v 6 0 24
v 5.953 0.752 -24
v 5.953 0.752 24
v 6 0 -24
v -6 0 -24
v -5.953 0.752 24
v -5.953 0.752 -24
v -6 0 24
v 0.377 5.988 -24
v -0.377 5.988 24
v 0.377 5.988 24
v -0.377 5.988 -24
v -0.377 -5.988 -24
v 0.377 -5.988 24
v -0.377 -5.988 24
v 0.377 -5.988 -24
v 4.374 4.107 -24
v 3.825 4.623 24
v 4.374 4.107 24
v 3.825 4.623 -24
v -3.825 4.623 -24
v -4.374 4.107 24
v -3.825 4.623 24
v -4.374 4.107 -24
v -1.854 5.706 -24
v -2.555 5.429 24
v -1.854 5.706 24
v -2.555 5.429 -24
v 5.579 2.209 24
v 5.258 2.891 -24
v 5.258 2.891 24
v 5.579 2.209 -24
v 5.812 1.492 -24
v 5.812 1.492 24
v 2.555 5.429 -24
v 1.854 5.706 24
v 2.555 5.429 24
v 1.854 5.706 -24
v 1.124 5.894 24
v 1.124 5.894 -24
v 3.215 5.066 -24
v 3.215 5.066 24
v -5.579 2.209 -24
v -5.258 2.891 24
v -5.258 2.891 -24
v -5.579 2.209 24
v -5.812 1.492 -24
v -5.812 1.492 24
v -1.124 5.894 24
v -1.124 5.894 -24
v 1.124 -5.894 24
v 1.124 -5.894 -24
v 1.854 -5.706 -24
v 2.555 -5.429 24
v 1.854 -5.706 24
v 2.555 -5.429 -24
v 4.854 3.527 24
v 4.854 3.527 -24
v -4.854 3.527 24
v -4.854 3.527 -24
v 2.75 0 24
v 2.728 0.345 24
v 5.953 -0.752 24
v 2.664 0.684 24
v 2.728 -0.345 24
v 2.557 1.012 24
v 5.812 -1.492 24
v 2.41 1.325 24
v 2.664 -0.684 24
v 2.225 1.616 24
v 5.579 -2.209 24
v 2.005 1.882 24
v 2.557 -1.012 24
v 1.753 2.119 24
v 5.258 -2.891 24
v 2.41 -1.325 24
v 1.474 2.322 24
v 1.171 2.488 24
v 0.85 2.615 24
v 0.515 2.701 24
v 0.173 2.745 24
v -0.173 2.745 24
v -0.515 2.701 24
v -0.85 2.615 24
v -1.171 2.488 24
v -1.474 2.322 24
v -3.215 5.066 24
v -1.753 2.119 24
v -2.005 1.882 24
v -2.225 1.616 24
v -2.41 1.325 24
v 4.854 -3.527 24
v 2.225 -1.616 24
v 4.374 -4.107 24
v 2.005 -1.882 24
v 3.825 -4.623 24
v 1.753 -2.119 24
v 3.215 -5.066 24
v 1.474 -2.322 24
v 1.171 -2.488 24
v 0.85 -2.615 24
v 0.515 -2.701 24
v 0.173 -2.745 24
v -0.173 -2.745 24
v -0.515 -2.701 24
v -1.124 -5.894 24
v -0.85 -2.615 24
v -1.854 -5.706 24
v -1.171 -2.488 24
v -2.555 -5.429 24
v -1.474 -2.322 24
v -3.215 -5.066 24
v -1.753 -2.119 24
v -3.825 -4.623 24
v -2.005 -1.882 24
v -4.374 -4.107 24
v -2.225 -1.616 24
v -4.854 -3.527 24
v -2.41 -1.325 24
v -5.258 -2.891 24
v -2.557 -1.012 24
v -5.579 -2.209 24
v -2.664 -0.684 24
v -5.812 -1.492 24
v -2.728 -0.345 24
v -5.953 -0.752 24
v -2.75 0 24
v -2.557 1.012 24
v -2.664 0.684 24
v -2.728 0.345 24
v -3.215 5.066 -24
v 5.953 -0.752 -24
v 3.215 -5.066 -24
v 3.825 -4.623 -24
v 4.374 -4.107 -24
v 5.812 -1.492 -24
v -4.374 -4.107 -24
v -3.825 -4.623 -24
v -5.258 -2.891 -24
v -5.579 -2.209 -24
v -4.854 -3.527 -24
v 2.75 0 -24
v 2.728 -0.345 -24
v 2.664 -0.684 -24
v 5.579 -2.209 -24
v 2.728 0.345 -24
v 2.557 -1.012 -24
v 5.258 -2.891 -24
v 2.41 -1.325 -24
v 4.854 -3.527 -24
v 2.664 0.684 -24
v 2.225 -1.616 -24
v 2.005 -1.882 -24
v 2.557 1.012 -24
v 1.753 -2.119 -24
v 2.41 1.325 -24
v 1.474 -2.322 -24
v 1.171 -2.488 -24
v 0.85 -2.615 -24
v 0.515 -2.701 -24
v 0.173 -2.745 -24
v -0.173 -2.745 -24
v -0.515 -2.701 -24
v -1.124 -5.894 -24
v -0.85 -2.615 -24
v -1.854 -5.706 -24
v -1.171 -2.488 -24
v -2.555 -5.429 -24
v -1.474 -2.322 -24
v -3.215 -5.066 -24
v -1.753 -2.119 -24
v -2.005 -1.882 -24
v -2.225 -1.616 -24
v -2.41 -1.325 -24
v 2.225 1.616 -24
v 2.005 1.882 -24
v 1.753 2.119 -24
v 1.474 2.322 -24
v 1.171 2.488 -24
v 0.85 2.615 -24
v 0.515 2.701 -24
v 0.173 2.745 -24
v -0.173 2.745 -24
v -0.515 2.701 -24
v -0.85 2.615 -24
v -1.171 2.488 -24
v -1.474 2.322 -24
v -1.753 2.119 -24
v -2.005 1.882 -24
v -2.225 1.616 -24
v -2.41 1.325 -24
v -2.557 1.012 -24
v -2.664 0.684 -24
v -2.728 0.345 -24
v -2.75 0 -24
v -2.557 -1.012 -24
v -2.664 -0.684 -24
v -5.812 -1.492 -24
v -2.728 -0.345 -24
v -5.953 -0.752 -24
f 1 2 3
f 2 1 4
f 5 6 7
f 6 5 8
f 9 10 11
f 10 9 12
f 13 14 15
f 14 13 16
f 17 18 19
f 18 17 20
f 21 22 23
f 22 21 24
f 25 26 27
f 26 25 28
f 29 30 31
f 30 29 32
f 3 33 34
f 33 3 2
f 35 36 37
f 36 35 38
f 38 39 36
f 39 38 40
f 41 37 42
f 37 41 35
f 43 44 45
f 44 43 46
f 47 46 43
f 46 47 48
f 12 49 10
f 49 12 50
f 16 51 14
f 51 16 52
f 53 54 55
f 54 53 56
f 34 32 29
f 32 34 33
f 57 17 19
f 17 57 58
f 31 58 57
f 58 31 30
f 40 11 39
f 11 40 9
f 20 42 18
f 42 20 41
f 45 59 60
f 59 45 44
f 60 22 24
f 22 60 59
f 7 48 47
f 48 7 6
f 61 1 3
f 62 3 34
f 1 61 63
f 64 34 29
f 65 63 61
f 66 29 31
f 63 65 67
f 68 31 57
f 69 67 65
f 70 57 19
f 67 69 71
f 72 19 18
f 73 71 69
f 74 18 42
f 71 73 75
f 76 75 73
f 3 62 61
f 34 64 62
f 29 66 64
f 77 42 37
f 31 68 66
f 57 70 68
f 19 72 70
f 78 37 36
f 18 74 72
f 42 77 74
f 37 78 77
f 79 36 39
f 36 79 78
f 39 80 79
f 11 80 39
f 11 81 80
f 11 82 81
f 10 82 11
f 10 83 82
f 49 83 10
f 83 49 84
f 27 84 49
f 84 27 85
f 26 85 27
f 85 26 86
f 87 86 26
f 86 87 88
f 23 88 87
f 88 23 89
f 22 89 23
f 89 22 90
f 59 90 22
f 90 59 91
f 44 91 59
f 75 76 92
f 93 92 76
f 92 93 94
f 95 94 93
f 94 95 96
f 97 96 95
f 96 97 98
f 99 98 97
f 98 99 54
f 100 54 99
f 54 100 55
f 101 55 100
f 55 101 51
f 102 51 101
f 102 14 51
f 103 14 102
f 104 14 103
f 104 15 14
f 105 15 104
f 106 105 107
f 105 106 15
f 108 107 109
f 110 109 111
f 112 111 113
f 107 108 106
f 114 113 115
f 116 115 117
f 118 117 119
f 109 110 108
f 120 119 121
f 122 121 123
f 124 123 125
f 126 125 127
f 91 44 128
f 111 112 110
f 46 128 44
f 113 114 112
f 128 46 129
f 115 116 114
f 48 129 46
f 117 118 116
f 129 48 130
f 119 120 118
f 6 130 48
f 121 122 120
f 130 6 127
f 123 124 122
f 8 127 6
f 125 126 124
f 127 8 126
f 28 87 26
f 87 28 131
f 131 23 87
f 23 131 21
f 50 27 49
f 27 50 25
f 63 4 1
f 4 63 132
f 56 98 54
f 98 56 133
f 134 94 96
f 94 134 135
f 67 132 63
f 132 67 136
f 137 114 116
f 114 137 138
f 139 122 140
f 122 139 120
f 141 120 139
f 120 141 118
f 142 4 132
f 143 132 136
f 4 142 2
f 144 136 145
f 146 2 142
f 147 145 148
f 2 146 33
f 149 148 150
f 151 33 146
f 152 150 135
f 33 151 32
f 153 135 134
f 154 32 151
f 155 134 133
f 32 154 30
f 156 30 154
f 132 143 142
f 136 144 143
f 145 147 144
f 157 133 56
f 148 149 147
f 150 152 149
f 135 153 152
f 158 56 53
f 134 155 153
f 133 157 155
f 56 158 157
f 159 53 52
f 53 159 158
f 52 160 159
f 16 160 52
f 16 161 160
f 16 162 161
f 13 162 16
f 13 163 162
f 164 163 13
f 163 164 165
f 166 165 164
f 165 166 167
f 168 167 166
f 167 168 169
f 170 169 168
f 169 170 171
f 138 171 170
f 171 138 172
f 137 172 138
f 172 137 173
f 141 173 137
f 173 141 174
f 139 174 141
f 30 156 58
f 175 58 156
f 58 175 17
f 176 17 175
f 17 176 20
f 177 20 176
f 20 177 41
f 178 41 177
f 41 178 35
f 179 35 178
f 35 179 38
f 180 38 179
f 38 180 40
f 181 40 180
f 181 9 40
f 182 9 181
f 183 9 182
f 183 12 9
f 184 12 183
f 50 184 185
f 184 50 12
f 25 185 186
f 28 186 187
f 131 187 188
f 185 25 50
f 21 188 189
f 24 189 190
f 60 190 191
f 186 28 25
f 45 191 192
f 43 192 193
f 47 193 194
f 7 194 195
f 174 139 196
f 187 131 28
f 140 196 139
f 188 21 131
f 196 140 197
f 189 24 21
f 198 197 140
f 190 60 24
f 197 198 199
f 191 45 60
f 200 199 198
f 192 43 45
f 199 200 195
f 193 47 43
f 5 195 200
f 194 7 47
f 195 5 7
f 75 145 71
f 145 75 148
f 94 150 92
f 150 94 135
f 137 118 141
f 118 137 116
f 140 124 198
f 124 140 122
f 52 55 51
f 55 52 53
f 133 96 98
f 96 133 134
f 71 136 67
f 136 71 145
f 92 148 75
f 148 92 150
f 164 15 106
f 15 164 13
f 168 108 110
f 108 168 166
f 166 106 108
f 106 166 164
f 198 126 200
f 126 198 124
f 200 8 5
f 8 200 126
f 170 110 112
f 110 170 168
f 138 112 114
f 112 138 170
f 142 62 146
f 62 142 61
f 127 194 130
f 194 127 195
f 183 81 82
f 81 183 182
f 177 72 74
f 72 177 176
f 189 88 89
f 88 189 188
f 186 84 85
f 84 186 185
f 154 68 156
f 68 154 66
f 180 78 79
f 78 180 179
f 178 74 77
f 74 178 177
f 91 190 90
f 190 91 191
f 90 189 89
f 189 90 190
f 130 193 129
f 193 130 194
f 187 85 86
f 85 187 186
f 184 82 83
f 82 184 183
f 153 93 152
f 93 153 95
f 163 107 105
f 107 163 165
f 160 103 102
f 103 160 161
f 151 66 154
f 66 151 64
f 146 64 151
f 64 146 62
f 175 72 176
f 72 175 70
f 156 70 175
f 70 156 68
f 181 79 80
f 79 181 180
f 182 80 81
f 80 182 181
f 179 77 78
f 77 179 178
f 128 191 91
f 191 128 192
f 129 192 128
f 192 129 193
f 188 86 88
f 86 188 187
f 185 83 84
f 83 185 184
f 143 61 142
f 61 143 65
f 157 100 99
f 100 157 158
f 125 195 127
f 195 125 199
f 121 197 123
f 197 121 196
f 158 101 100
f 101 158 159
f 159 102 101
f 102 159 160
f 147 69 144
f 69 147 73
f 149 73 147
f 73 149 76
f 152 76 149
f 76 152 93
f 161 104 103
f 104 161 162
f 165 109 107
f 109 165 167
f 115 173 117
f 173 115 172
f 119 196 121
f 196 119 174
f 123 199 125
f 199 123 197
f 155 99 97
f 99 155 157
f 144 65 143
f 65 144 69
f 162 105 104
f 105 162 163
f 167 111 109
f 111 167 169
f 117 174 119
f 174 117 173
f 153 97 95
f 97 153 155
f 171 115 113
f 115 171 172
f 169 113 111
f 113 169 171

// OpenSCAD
$fn = 50;


difference() {
	union() {
		translate(v = [0, 0, -24.0000000000]) {
			cylinder(h = 48, r = 6.0000000000);
		}
	}
	union() {
		translate(v = [0, 0, -100.0000000000]) {
			cylinder(h = 200, r = 2.7500000000);
		}
	}
}
